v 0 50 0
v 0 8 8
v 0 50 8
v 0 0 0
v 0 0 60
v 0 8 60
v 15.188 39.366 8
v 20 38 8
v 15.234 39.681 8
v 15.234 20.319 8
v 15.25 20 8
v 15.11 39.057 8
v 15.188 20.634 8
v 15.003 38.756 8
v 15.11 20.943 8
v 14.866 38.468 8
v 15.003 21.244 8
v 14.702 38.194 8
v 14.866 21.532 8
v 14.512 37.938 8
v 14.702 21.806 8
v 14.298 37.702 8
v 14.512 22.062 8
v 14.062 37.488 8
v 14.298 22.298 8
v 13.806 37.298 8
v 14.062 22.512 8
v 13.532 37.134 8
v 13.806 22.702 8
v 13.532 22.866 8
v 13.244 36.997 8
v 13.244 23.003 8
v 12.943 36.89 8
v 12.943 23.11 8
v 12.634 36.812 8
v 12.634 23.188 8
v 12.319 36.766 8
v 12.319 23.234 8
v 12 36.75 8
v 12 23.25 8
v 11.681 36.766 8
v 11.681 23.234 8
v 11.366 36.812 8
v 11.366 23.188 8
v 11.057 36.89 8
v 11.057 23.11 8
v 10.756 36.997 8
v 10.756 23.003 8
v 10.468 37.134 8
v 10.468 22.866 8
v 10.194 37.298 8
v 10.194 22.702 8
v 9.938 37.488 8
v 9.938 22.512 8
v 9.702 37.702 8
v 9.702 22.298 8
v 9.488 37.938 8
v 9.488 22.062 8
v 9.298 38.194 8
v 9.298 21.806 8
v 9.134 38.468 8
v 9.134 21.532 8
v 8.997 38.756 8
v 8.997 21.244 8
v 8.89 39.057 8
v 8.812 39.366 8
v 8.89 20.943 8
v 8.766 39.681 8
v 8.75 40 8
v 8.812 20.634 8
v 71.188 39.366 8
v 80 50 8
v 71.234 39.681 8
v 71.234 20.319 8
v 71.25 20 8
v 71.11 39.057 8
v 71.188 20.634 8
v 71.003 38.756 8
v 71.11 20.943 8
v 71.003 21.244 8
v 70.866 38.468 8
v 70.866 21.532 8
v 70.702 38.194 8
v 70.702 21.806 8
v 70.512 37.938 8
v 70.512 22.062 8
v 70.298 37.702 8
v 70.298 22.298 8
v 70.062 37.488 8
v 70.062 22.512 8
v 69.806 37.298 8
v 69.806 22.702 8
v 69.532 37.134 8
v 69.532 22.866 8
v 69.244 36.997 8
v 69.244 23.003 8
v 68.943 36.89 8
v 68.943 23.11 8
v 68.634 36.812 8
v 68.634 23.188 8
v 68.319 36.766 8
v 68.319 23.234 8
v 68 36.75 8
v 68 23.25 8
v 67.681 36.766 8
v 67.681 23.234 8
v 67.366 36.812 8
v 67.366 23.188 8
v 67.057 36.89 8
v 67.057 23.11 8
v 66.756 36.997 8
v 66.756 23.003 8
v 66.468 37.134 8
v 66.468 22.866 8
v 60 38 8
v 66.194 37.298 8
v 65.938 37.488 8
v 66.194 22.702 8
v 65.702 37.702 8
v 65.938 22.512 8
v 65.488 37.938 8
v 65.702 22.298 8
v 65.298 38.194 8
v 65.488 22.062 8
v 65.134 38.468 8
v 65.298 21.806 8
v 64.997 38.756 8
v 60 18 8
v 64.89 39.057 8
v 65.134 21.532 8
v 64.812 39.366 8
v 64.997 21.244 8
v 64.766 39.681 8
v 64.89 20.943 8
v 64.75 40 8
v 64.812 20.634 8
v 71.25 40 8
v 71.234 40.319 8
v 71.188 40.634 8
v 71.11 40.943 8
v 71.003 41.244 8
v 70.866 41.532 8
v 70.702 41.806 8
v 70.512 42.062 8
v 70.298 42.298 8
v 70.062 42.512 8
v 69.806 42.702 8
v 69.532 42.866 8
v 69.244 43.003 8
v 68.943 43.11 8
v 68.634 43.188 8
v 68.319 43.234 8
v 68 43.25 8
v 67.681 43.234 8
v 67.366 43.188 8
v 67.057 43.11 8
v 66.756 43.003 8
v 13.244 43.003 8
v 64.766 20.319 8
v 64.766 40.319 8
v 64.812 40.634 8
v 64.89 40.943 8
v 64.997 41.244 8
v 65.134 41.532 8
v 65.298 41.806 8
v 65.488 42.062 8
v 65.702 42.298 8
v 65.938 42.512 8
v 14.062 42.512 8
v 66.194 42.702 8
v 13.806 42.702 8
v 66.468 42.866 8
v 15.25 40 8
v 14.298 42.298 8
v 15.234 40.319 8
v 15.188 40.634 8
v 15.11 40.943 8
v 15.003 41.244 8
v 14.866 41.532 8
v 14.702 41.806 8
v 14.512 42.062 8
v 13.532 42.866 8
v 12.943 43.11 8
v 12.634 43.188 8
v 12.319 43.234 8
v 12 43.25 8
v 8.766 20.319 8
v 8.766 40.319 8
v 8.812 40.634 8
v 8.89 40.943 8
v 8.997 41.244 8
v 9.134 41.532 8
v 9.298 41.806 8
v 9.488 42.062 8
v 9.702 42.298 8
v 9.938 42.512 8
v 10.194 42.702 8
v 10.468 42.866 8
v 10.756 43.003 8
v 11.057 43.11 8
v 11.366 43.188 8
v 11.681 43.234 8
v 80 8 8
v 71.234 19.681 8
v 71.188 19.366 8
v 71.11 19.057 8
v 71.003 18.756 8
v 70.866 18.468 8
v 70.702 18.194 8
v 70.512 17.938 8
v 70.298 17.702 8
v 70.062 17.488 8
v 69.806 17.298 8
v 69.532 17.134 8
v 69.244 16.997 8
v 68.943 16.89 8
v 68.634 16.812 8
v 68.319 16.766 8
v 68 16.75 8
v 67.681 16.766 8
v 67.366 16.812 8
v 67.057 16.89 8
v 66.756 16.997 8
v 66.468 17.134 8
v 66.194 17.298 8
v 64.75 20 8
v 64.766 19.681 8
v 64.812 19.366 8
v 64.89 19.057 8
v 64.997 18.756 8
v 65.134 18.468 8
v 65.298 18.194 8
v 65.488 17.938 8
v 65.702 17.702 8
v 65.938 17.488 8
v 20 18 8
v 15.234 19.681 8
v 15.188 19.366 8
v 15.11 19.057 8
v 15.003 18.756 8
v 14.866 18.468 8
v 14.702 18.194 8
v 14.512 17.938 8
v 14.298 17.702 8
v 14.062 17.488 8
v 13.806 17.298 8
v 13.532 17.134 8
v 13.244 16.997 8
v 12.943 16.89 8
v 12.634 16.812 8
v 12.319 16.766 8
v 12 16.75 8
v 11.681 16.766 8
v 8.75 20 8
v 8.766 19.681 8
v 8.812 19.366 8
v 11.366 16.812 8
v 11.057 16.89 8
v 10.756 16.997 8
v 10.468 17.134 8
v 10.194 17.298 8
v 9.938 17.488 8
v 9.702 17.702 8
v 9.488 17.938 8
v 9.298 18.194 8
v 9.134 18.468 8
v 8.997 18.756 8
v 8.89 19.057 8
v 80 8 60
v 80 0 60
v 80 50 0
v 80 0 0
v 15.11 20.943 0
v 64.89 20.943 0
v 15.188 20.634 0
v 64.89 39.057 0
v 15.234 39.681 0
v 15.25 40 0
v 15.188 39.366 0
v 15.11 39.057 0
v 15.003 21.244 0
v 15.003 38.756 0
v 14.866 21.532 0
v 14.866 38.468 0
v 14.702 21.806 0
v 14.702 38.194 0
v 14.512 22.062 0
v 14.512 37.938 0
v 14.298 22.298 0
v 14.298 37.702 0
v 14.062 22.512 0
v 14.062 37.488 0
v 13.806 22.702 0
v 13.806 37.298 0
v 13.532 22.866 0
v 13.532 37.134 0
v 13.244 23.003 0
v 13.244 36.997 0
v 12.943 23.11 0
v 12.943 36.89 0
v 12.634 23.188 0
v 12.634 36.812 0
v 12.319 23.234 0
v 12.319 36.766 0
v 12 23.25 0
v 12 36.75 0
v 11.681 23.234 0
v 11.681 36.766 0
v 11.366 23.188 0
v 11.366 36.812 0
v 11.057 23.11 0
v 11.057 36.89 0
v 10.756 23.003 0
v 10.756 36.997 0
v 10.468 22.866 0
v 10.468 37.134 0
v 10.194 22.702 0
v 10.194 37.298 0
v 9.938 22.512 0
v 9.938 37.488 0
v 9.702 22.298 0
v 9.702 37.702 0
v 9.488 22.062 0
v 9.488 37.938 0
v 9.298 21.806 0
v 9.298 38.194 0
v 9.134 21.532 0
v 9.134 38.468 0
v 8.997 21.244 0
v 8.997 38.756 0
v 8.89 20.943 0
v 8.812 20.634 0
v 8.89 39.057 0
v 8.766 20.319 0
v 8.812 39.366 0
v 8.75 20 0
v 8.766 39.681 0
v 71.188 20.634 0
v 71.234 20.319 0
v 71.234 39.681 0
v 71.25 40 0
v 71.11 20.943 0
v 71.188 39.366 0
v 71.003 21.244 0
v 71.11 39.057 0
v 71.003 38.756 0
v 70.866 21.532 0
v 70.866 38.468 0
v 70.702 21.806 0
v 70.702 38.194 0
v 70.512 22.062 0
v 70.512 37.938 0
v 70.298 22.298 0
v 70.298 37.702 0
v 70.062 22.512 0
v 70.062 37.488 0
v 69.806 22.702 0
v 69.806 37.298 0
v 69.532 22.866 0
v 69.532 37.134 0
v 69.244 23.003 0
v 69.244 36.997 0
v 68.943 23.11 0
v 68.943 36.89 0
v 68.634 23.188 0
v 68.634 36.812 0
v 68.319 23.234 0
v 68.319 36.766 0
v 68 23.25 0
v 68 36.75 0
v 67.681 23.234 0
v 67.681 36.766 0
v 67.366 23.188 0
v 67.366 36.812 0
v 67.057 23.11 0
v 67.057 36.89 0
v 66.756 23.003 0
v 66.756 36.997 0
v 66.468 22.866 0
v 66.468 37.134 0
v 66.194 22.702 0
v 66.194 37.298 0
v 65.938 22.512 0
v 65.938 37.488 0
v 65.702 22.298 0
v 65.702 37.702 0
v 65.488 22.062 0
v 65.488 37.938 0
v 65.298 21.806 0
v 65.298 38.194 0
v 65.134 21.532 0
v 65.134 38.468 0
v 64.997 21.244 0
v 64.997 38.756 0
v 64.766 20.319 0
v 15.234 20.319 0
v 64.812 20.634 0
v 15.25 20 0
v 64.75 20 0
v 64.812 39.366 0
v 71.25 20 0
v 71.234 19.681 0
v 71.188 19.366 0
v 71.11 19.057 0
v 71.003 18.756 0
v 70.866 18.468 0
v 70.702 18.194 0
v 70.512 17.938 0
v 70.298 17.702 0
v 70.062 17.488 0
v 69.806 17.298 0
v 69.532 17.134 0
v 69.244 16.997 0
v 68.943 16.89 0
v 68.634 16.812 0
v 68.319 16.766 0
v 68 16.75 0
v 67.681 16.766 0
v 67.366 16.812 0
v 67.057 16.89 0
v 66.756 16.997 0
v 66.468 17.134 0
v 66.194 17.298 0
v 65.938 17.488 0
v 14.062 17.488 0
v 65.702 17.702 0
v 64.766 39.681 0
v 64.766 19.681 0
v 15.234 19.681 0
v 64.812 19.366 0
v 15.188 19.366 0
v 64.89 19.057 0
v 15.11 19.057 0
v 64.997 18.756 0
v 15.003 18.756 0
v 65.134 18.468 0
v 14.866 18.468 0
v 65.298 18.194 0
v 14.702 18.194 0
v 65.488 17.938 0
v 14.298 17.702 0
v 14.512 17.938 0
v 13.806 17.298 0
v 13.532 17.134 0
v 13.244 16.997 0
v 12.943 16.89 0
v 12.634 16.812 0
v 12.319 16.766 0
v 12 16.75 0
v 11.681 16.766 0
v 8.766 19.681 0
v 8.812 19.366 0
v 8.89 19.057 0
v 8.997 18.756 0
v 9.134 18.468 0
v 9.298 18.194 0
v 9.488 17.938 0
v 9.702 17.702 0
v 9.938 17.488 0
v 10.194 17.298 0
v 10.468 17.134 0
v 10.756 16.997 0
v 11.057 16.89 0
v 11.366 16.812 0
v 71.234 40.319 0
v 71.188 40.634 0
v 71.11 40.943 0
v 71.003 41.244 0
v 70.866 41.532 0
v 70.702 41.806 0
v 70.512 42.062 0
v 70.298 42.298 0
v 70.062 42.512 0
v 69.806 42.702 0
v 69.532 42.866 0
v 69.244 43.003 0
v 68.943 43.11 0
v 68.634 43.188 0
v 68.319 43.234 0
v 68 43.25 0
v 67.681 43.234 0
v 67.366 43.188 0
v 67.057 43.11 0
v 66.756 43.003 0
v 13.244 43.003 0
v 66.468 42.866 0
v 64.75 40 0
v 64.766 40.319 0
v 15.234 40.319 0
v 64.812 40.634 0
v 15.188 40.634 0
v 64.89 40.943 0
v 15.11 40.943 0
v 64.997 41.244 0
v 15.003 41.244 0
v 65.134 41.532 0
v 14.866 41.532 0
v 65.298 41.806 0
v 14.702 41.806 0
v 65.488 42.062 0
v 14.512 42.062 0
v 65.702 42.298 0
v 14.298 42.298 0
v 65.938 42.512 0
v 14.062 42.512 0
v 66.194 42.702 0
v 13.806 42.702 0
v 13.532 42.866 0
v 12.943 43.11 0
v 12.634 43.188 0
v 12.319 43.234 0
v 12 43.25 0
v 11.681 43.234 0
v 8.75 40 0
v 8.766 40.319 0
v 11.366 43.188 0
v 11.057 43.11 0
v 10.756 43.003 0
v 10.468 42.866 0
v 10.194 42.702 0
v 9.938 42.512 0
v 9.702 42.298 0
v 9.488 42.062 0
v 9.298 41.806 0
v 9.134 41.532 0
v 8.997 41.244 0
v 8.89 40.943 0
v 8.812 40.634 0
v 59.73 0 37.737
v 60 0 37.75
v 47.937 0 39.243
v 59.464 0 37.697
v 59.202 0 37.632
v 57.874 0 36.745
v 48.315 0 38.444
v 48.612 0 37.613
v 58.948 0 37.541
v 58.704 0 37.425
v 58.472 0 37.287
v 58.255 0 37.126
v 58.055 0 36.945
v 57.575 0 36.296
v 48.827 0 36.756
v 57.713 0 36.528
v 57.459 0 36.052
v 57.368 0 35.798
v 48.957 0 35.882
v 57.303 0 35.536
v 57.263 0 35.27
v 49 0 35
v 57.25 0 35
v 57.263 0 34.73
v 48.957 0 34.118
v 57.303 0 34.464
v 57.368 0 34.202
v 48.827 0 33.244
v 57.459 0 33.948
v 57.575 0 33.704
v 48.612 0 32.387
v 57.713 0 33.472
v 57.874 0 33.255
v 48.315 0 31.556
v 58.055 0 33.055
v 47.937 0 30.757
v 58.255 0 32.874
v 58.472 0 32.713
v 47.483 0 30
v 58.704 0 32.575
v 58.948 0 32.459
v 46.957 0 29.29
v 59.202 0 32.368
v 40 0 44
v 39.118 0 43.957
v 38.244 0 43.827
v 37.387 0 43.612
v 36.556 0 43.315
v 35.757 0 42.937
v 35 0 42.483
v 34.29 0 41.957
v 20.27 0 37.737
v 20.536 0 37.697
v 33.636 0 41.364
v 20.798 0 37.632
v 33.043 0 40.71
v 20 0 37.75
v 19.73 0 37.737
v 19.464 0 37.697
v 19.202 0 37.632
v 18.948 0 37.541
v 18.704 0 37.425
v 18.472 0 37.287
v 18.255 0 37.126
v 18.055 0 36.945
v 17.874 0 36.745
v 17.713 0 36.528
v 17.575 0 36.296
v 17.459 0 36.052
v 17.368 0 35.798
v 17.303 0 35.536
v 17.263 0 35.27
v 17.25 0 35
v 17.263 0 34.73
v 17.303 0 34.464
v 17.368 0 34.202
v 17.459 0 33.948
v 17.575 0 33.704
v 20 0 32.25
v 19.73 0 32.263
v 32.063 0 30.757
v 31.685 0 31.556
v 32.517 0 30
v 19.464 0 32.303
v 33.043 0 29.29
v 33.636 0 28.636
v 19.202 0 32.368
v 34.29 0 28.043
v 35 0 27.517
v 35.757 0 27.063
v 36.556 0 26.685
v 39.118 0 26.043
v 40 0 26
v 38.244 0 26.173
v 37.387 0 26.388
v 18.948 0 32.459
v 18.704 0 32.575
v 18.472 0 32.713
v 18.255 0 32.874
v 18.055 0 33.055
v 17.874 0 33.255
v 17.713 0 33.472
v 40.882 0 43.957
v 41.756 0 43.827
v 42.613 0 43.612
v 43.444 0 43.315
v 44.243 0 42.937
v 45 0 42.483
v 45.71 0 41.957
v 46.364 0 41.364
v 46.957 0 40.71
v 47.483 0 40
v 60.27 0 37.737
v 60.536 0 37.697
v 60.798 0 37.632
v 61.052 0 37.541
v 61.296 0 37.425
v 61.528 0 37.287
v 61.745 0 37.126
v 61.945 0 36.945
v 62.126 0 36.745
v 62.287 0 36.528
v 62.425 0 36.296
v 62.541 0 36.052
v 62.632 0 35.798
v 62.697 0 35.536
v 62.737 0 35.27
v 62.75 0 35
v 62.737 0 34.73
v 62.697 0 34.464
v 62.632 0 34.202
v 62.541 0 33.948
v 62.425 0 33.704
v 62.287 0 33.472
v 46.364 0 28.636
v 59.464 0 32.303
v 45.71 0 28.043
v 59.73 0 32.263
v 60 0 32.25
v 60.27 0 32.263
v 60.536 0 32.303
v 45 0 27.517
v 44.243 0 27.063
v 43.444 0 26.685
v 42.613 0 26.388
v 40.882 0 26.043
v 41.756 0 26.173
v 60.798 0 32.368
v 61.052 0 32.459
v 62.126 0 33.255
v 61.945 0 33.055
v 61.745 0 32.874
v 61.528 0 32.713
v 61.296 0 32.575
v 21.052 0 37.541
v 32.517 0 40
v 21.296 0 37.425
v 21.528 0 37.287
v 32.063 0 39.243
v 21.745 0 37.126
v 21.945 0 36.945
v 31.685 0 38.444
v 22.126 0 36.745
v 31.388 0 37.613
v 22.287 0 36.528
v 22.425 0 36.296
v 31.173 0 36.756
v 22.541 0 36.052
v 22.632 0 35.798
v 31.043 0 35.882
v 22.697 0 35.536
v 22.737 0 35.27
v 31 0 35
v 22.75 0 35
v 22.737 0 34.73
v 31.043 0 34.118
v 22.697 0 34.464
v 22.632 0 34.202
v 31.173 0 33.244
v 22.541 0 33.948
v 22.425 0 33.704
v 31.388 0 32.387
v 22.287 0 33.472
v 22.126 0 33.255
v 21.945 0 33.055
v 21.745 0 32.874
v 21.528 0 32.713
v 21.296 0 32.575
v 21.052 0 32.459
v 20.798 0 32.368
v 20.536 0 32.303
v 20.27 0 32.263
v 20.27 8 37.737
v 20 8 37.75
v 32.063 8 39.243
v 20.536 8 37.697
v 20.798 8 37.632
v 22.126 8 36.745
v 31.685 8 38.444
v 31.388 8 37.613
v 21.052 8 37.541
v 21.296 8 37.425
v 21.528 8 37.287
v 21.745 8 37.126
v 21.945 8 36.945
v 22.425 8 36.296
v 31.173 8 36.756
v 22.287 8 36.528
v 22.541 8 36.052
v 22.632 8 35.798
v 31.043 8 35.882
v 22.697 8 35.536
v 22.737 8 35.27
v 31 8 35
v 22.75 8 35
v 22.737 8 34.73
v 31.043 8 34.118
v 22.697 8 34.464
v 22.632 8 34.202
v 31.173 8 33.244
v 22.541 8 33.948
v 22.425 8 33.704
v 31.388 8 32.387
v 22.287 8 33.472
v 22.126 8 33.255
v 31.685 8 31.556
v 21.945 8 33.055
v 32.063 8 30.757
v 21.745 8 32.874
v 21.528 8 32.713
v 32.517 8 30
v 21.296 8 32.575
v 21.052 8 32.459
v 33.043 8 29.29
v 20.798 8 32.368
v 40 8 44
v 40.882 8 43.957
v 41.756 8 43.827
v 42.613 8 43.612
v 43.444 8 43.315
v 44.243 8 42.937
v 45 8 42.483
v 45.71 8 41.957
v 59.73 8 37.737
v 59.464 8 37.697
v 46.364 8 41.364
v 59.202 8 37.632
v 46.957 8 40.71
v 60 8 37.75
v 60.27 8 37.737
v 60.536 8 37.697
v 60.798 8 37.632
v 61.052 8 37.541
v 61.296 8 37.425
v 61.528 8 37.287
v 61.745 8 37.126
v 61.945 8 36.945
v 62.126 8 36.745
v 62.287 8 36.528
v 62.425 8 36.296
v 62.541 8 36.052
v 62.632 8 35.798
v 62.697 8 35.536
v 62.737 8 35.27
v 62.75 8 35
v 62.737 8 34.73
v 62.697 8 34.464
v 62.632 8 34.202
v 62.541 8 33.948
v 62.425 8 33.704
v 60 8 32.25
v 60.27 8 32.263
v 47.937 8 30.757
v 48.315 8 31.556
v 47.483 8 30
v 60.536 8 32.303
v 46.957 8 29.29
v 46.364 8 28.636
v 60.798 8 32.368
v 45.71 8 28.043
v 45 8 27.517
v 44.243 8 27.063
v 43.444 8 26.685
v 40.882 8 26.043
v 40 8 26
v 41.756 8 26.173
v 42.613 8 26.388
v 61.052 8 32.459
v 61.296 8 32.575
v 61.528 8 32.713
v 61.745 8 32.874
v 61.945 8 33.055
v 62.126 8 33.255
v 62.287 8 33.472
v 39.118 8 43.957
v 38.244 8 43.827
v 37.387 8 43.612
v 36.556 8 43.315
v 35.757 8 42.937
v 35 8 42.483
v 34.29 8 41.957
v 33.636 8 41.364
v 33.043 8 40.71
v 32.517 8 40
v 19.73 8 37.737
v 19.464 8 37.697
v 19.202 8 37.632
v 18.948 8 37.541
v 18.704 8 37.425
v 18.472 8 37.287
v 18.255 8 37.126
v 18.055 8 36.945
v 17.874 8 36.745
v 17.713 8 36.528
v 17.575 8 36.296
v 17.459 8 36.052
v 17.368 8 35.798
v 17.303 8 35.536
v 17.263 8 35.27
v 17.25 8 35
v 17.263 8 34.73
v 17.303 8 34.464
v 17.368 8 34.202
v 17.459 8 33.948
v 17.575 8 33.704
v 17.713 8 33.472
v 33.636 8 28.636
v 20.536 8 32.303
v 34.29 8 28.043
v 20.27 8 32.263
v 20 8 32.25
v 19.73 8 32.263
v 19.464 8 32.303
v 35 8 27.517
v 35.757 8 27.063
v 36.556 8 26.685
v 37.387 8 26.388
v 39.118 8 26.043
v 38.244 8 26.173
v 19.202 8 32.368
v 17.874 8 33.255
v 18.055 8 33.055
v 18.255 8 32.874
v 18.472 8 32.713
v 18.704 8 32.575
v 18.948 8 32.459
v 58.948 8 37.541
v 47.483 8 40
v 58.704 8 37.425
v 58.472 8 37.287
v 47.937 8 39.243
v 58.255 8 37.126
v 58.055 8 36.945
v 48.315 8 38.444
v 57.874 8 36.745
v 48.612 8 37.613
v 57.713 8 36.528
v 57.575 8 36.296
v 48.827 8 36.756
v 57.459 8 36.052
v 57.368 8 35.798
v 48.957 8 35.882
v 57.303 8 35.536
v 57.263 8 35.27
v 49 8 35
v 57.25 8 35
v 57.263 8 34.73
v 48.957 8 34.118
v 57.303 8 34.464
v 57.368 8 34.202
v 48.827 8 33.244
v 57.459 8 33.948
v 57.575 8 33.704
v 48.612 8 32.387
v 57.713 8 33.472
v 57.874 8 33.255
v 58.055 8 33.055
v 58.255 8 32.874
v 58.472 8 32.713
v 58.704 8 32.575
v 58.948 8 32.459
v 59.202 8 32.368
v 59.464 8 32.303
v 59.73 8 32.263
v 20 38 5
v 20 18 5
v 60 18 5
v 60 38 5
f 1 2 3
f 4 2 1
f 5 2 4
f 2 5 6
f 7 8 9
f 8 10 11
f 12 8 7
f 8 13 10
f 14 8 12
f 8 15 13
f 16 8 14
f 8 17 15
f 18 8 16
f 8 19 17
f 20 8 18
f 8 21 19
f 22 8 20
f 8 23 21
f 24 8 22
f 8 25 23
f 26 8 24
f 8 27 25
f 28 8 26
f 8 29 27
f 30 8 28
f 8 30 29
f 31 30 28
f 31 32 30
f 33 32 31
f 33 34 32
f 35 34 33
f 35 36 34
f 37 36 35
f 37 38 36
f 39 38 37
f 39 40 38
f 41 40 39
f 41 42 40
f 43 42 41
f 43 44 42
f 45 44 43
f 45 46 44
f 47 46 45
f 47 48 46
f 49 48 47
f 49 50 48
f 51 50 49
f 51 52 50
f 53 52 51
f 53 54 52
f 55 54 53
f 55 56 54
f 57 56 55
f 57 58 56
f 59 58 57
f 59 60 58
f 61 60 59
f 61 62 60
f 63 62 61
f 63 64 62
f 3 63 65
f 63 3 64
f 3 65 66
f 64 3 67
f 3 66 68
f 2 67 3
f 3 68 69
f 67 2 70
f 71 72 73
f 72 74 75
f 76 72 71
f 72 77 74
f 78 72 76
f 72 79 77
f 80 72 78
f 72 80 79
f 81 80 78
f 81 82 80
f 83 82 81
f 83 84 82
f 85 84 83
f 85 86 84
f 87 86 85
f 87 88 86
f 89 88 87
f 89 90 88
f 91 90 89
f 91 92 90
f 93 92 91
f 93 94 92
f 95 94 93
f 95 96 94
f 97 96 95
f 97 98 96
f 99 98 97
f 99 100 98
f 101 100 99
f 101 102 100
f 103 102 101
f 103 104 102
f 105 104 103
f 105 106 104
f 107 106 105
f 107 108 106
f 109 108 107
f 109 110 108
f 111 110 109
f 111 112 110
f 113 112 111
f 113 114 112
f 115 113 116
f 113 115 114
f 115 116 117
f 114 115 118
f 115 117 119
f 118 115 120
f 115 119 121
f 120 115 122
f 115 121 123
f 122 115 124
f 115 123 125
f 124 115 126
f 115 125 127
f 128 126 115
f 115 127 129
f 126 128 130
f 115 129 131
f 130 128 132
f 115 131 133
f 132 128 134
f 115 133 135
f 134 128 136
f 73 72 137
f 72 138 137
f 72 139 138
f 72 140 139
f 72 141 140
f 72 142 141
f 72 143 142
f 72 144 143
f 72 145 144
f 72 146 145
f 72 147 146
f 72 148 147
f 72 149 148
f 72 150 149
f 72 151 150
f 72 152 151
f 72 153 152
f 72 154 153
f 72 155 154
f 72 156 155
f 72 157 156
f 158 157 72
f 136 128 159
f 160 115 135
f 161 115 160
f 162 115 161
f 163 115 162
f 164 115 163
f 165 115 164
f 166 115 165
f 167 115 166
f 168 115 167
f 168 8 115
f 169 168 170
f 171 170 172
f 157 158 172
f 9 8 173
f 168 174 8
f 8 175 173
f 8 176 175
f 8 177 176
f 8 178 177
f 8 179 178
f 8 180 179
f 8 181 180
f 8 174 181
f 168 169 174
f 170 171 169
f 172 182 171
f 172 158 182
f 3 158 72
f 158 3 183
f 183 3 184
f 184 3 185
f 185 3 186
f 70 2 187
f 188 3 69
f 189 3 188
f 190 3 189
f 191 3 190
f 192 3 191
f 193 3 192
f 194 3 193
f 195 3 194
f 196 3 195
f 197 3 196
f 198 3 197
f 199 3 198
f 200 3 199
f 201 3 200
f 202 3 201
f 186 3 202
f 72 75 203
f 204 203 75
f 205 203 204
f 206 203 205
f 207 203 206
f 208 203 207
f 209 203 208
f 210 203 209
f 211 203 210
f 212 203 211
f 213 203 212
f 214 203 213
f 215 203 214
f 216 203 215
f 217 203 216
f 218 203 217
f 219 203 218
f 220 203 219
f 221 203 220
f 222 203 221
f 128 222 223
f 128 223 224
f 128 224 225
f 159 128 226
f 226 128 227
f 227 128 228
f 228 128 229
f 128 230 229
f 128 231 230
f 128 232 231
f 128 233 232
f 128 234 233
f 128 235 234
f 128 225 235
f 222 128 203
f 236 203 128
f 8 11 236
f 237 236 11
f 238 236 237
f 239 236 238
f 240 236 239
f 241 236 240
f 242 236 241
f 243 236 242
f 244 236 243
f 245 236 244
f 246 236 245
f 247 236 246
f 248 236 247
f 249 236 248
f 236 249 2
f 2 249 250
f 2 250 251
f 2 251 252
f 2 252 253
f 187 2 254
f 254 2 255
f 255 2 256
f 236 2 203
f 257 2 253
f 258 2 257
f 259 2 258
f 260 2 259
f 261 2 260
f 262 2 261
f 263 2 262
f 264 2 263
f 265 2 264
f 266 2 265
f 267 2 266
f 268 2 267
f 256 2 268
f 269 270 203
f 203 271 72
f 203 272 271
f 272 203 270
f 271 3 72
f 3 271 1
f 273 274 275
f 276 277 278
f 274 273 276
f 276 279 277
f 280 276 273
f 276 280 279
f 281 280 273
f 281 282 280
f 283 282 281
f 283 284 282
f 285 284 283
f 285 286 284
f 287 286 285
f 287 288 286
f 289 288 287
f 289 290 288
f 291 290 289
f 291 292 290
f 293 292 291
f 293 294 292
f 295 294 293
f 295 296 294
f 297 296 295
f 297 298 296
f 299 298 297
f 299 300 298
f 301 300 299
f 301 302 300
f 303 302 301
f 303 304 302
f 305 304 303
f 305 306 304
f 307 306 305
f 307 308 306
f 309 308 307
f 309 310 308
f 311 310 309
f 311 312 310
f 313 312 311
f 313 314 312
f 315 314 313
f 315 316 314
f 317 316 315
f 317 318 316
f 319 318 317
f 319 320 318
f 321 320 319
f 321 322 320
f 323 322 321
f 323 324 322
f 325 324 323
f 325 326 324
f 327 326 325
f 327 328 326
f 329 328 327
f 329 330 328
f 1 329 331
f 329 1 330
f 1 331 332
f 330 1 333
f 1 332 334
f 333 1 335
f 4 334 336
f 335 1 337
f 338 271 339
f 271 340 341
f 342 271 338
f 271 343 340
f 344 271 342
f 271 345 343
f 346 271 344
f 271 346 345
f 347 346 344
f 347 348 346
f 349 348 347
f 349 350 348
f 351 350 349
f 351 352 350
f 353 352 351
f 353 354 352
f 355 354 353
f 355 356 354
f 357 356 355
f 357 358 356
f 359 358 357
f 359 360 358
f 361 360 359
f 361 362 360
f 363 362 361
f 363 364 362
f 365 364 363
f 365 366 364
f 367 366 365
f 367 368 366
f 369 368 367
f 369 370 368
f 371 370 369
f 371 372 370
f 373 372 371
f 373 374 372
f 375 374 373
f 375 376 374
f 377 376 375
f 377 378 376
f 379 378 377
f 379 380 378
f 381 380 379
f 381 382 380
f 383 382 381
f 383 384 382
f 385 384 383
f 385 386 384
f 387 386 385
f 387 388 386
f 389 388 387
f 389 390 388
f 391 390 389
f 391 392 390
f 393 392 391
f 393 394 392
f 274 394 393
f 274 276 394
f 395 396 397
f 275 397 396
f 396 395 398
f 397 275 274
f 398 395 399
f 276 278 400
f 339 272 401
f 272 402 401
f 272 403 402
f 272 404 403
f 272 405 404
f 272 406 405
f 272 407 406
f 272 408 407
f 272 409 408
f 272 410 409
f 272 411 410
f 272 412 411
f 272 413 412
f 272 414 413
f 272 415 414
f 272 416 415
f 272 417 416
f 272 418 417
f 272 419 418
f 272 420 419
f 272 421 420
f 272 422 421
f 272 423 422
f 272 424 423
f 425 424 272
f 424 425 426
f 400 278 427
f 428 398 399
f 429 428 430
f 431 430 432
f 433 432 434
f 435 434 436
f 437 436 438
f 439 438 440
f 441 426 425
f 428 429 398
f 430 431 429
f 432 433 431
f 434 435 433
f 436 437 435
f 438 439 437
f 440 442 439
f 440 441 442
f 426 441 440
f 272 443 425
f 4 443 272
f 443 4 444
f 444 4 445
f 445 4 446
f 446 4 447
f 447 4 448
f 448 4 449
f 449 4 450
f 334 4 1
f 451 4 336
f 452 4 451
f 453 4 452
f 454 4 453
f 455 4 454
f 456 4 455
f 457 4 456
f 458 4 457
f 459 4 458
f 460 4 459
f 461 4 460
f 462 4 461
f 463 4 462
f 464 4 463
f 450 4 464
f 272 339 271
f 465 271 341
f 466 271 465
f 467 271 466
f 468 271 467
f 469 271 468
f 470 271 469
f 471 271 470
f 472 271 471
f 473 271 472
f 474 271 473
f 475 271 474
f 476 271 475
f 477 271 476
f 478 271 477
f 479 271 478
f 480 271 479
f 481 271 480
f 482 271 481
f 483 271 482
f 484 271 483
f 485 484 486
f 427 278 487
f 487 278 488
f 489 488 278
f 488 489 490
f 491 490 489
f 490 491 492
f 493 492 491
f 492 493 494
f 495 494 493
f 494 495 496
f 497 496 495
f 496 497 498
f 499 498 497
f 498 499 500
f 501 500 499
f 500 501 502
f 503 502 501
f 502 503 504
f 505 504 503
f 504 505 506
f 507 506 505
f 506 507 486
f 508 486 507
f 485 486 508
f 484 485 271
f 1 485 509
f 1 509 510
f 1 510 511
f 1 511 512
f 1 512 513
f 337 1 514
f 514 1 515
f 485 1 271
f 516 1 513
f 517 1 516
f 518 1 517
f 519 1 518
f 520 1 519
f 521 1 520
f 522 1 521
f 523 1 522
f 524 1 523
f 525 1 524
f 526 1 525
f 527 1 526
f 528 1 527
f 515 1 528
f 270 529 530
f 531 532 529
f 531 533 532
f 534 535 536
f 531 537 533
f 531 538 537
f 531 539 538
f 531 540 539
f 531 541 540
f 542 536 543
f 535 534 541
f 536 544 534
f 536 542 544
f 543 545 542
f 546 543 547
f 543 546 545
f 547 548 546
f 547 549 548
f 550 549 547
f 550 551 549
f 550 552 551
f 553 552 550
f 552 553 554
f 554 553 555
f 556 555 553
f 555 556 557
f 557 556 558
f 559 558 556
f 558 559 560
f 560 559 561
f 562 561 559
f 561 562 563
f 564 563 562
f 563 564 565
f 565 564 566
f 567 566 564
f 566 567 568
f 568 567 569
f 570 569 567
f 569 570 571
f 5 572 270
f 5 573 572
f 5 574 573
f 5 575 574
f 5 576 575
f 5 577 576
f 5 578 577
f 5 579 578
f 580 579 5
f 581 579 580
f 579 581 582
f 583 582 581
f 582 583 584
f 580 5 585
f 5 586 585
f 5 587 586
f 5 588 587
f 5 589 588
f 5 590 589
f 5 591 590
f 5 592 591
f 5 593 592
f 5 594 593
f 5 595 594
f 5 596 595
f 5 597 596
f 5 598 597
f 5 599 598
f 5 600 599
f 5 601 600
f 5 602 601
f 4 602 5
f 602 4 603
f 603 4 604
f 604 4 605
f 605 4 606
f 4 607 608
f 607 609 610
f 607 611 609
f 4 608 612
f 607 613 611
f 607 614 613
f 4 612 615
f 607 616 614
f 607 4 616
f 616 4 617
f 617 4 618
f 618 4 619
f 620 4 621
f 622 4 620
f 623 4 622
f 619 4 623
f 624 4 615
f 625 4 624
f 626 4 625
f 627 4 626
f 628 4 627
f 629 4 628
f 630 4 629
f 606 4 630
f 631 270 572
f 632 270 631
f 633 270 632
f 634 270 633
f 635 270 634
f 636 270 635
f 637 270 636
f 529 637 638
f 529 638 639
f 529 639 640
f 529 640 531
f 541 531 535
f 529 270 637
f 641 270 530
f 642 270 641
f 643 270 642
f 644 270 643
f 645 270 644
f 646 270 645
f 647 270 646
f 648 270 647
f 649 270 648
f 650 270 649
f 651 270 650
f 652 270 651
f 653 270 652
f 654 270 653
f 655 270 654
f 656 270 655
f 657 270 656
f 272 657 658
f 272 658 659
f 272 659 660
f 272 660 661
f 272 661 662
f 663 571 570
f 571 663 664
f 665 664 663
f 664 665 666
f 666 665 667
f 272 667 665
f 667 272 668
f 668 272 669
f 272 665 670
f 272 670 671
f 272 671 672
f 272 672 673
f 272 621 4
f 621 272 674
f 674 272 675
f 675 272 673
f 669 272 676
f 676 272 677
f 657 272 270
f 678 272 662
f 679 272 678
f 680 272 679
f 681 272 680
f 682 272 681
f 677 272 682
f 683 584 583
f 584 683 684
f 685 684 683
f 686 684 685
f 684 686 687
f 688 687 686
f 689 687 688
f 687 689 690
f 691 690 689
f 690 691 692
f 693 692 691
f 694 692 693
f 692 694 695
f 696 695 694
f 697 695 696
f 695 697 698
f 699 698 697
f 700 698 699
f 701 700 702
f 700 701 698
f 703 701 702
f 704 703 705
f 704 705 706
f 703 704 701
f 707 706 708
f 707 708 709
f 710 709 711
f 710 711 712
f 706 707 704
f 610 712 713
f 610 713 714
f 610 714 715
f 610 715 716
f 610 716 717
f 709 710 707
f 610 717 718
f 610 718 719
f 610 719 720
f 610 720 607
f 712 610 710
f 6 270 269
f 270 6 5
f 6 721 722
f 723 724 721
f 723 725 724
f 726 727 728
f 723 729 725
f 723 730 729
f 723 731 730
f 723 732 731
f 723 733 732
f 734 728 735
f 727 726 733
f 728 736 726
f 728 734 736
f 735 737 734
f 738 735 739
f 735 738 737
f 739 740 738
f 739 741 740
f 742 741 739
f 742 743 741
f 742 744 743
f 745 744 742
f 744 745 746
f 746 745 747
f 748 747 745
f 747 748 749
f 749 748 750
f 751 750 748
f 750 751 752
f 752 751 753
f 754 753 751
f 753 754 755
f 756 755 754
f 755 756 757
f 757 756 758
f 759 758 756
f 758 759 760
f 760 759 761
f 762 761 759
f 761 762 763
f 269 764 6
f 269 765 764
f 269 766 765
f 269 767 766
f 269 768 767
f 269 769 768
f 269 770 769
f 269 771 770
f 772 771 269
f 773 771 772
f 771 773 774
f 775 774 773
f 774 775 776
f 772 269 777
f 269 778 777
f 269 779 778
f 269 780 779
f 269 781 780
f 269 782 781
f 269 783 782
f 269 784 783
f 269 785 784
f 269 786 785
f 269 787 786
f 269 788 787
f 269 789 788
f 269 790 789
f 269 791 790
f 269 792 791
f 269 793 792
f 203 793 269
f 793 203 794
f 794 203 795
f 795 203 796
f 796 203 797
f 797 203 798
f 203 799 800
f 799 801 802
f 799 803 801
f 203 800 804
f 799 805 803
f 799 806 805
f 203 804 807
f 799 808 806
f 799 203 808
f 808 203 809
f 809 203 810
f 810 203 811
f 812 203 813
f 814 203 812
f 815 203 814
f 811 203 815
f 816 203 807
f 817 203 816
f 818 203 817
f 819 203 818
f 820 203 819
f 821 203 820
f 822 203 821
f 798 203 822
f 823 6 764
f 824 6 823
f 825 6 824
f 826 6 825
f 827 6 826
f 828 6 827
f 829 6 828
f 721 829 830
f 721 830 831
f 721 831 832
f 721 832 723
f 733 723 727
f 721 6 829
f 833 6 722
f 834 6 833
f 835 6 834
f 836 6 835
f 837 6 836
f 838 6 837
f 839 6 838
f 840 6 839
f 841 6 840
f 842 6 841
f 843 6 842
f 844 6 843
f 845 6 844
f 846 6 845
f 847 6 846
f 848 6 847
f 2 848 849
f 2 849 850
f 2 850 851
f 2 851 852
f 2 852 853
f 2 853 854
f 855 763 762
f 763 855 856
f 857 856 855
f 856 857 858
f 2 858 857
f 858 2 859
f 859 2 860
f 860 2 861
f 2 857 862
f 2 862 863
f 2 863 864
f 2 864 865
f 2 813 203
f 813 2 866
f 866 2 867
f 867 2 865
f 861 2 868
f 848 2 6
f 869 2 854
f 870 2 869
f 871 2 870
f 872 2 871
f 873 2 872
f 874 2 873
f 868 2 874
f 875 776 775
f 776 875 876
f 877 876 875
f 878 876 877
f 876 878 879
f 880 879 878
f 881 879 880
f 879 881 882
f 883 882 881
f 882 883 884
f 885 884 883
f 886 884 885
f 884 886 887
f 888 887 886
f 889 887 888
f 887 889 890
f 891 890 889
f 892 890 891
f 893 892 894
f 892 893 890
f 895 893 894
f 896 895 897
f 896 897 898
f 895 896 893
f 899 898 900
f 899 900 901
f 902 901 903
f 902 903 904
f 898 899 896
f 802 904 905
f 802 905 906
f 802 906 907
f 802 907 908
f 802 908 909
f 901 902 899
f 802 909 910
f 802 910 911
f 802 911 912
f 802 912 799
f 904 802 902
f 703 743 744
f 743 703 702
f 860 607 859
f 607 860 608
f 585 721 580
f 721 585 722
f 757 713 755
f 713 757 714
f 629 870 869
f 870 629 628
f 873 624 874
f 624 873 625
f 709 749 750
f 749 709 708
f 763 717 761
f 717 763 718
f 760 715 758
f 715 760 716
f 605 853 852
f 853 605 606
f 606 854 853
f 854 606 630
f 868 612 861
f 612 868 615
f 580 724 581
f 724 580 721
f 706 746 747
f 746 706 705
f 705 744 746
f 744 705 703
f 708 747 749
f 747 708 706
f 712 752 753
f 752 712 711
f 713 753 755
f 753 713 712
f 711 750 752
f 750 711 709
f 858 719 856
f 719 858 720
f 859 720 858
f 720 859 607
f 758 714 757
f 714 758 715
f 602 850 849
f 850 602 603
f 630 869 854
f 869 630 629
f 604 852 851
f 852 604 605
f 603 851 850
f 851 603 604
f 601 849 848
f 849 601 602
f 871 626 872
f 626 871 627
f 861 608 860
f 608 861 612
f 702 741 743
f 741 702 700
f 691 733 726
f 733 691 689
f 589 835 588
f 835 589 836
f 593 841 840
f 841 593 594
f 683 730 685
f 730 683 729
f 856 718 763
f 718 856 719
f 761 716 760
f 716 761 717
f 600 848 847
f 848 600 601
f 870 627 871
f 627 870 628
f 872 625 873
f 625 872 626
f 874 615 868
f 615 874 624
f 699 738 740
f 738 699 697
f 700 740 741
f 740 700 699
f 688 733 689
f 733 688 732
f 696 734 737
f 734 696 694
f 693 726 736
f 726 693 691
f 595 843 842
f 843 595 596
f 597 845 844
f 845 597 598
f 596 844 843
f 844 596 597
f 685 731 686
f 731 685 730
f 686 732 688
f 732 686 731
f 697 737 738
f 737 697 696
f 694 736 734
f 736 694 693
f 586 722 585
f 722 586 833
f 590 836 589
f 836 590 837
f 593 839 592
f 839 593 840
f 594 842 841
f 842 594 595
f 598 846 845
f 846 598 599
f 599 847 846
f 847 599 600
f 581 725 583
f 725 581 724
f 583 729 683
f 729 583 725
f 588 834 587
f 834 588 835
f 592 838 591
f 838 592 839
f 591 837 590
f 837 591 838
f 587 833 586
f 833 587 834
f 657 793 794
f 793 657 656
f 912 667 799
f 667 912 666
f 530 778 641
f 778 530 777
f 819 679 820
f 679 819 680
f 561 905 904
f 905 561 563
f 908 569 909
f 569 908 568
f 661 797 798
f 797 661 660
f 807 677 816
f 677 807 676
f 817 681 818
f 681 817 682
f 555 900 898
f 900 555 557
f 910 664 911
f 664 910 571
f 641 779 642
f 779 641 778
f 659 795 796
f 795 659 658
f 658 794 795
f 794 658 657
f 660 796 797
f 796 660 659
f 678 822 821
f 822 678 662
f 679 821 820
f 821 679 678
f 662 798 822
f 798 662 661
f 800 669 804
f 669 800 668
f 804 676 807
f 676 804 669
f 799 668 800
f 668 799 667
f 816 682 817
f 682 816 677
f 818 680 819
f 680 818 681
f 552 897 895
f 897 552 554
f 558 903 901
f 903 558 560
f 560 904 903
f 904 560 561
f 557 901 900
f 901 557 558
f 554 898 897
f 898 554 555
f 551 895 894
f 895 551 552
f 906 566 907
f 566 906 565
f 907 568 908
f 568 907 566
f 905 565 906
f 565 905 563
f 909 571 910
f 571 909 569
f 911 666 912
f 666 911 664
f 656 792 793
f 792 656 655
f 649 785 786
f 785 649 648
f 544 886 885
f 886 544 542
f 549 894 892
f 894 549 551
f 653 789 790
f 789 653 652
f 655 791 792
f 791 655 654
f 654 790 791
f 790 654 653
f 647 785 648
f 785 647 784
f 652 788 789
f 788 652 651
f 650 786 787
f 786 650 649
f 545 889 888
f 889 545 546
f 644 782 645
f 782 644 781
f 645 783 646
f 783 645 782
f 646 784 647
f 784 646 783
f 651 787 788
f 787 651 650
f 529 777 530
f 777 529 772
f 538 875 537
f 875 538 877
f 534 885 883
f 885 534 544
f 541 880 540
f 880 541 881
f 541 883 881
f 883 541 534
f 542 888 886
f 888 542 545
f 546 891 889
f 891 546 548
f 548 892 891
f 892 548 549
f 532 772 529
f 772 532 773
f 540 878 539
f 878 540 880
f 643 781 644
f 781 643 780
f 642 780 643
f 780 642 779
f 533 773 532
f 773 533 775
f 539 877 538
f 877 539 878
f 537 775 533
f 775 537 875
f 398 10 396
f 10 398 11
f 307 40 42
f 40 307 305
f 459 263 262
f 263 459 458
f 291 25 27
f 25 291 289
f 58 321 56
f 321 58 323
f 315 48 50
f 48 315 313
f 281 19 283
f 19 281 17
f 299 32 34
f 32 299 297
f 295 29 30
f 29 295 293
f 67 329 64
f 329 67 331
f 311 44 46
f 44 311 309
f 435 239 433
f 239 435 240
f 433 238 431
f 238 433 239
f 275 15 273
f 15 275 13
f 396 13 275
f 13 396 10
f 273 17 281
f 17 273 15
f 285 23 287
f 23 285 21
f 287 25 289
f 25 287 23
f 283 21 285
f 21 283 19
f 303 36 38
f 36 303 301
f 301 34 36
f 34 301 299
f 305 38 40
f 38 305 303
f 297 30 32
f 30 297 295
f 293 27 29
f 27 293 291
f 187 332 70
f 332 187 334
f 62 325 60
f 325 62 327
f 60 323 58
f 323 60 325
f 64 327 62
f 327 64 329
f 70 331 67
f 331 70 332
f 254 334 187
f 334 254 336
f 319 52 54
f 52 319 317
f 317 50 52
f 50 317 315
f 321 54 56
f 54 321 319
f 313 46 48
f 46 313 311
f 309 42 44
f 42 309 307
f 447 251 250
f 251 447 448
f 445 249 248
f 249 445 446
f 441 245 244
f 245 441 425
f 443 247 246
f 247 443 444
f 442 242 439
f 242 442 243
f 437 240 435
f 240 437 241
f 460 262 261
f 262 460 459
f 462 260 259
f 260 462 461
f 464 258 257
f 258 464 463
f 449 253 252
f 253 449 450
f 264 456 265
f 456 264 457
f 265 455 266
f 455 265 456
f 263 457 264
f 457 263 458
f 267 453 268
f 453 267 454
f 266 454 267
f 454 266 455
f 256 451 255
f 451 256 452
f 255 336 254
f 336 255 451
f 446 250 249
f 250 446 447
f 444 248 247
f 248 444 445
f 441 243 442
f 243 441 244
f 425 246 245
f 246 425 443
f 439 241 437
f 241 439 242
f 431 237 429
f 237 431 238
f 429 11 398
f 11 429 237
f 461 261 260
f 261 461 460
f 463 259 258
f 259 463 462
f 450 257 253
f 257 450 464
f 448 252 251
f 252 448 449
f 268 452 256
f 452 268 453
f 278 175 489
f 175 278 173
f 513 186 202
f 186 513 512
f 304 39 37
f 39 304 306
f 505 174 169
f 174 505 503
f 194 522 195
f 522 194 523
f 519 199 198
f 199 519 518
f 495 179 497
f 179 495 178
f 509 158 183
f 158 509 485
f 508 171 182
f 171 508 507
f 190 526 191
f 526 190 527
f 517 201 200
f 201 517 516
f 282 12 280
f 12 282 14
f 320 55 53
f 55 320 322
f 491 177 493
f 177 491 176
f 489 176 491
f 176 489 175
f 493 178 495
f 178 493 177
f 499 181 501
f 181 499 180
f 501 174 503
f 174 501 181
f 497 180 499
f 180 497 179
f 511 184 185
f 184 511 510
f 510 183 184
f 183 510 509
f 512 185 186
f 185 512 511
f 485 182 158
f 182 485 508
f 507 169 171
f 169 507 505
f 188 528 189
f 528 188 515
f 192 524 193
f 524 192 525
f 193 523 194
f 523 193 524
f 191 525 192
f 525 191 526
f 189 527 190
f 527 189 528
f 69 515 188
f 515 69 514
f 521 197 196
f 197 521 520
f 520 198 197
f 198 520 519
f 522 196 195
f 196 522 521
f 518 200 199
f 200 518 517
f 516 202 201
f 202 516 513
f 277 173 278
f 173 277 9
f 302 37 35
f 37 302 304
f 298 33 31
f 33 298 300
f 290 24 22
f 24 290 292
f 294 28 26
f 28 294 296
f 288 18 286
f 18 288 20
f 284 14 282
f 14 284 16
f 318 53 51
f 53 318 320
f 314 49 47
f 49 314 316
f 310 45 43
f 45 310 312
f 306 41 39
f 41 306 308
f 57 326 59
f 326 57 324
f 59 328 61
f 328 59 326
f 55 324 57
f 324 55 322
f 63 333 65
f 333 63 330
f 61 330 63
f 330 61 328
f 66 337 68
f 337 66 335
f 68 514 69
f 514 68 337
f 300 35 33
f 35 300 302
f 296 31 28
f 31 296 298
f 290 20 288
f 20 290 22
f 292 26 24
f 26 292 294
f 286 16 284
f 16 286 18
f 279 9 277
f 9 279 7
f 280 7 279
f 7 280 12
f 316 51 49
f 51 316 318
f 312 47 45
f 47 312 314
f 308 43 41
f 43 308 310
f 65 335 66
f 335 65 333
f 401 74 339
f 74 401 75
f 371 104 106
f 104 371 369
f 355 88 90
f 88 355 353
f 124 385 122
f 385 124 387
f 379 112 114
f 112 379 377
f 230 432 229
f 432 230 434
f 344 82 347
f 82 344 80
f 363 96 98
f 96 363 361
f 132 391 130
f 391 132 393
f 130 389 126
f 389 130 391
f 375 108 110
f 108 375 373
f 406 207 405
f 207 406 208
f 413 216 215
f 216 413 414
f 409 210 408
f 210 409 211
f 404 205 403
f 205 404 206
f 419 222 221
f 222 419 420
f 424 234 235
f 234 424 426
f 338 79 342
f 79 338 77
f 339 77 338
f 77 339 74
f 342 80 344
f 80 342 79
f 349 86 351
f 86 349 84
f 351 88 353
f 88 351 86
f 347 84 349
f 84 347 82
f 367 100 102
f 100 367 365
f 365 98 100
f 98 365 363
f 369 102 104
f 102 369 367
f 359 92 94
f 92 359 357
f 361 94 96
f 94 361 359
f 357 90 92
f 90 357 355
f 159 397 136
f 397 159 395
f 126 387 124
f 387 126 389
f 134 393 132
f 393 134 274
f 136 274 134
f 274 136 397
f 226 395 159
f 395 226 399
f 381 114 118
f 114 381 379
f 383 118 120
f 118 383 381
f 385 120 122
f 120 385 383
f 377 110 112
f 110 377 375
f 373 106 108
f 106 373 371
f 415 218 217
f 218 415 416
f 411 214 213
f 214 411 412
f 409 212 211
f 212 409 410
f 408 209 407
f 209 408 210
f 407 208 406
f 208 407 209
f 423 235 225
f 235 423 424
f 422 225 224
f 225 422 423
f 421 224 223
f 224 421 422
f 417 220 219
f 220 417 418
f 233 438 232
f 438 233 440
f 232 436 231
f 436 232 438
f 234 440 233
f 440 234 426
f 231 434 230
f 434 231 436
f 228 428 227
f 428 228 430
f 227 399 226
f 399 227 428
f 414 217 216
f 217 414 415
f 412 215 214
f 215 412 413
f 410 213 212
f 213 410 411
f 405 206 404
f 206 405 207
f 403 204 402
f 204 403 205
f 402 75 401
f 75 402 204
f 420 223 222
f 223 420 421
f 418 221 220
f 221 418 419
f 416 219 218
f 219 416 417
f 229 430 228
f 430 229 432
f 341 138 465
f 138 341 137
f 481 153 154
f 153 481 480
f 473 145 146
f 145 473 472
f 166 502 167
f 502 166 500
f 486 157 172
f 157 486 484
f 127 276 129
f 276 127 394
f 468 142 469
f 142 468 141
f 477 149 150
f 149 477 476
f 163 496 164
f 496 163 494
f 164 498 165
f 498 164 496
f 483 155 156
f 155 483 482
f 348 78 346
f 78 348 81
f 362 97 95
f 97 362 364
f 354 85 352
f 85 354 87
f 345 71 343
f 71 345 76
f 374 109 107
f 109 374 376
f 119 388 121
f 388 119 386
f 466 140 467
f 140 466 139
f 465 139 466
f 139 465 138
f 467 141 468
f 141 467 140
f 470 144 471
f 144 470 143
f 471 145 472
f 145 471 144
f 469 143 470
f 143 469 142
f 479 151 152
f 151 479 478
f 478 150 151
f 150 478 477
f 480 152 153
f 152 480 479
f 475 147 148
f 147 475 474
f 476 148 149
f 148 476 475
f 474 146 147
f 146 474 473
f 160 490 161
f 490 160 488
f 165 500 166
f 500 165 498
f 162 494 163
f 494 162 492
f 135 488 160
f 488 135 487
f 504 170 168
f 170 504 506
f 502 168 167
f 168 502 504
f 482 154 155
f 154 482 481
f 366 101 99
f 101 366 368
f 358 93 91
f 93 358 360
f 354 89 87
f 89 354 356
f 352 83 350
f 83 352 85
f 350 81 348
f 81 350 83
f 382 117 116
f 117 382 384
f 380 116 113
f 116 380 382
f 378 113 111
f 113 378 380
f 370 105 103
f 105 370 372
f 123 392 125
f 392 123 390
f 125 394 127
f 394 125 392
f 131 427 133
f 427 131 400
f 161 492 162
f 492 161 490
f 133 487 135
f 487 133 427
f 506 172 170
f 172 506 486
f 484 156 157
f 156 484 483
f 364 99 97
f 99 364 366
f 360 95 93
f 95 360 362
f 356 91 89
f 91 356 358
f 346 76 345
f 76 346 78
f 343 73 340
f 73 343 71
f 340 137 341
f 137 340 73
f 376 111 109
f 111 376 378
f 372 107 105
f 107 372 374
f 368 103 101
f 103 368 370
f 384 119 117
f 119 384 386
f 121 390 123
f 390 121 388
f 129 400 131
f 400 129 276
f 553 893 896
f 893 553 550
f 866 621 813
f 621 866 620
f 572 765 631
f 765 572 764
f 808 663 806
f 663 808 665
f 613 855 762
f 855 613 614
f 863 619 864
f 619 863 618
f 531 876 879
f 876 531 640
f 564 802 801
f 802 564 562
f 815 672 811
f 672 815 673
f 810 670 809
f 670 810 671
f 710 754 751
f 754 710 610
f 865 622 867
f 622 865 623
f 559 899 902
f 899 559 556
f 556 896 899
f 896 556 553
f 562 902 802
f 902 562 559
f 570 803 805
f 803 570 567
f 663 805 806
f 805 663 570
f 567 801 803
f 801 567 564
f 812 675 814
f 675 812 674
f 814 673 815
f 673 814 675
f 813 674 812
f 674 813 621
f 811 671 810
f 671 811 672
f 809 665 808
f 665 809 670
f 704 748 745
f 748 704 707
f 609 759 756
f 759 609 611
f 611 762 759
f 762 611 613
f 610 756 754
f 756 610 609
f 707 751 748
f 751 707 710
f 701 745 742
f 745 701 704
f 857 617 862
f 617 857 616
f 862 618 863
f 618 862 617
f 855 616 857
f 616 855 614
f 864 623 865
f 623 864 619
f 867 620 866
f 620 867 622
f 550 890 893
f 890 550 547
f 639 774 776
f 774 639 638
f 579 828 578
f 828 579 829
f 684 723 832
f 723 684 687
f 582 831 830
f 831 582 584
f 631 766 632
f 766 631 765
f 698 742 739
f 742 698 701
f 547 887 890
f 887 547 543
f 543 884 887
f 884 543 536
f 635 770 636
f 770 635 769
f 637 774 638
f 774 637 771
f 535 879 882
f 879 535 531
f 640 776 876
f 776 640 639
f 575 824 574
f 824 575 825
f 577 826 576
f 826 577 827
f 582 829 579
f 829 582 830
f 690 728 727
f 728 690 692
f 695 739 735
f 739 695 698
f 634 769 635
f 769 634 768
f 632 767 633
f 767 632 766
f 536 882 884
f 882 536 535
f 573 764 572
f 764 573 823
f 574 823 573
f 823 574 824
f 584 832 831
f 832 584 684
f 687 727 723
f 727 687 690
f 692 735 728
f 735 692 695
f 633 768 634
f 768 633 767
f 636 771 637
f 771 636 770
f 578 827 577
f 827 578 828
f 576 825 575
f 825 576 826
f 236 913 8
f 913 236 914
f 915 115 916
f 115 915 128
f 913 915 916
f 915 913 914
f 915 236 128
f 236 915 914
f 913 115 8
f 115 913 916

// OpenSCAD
// Original MechIntel educational model. CC0-1.0. Units: mm.
// Not a standardized or load-rated component.
$fn=96;
length=80; depth=50; height=60; wall=8;
$fn=64;
difference(){
 union(){cube([length,depth,wall]);cube([length,wall,height]);}
 translate([length/2,-1,35]) rotate([-90,0,0]) cylinder(d=18,h=wall+2);
 for(x=[20,60]) translate([x,-1,35]) rotate([-90,0,0]) cylinder(d=5.5,h=wall+2);
 translate([20,18,wall-3]) cube([40,20,4]);
 for(x=[12,68]) for(y=[20,40]) translate([x,y,-1]) cylinder(d=6.5,h=wall+2);
}
